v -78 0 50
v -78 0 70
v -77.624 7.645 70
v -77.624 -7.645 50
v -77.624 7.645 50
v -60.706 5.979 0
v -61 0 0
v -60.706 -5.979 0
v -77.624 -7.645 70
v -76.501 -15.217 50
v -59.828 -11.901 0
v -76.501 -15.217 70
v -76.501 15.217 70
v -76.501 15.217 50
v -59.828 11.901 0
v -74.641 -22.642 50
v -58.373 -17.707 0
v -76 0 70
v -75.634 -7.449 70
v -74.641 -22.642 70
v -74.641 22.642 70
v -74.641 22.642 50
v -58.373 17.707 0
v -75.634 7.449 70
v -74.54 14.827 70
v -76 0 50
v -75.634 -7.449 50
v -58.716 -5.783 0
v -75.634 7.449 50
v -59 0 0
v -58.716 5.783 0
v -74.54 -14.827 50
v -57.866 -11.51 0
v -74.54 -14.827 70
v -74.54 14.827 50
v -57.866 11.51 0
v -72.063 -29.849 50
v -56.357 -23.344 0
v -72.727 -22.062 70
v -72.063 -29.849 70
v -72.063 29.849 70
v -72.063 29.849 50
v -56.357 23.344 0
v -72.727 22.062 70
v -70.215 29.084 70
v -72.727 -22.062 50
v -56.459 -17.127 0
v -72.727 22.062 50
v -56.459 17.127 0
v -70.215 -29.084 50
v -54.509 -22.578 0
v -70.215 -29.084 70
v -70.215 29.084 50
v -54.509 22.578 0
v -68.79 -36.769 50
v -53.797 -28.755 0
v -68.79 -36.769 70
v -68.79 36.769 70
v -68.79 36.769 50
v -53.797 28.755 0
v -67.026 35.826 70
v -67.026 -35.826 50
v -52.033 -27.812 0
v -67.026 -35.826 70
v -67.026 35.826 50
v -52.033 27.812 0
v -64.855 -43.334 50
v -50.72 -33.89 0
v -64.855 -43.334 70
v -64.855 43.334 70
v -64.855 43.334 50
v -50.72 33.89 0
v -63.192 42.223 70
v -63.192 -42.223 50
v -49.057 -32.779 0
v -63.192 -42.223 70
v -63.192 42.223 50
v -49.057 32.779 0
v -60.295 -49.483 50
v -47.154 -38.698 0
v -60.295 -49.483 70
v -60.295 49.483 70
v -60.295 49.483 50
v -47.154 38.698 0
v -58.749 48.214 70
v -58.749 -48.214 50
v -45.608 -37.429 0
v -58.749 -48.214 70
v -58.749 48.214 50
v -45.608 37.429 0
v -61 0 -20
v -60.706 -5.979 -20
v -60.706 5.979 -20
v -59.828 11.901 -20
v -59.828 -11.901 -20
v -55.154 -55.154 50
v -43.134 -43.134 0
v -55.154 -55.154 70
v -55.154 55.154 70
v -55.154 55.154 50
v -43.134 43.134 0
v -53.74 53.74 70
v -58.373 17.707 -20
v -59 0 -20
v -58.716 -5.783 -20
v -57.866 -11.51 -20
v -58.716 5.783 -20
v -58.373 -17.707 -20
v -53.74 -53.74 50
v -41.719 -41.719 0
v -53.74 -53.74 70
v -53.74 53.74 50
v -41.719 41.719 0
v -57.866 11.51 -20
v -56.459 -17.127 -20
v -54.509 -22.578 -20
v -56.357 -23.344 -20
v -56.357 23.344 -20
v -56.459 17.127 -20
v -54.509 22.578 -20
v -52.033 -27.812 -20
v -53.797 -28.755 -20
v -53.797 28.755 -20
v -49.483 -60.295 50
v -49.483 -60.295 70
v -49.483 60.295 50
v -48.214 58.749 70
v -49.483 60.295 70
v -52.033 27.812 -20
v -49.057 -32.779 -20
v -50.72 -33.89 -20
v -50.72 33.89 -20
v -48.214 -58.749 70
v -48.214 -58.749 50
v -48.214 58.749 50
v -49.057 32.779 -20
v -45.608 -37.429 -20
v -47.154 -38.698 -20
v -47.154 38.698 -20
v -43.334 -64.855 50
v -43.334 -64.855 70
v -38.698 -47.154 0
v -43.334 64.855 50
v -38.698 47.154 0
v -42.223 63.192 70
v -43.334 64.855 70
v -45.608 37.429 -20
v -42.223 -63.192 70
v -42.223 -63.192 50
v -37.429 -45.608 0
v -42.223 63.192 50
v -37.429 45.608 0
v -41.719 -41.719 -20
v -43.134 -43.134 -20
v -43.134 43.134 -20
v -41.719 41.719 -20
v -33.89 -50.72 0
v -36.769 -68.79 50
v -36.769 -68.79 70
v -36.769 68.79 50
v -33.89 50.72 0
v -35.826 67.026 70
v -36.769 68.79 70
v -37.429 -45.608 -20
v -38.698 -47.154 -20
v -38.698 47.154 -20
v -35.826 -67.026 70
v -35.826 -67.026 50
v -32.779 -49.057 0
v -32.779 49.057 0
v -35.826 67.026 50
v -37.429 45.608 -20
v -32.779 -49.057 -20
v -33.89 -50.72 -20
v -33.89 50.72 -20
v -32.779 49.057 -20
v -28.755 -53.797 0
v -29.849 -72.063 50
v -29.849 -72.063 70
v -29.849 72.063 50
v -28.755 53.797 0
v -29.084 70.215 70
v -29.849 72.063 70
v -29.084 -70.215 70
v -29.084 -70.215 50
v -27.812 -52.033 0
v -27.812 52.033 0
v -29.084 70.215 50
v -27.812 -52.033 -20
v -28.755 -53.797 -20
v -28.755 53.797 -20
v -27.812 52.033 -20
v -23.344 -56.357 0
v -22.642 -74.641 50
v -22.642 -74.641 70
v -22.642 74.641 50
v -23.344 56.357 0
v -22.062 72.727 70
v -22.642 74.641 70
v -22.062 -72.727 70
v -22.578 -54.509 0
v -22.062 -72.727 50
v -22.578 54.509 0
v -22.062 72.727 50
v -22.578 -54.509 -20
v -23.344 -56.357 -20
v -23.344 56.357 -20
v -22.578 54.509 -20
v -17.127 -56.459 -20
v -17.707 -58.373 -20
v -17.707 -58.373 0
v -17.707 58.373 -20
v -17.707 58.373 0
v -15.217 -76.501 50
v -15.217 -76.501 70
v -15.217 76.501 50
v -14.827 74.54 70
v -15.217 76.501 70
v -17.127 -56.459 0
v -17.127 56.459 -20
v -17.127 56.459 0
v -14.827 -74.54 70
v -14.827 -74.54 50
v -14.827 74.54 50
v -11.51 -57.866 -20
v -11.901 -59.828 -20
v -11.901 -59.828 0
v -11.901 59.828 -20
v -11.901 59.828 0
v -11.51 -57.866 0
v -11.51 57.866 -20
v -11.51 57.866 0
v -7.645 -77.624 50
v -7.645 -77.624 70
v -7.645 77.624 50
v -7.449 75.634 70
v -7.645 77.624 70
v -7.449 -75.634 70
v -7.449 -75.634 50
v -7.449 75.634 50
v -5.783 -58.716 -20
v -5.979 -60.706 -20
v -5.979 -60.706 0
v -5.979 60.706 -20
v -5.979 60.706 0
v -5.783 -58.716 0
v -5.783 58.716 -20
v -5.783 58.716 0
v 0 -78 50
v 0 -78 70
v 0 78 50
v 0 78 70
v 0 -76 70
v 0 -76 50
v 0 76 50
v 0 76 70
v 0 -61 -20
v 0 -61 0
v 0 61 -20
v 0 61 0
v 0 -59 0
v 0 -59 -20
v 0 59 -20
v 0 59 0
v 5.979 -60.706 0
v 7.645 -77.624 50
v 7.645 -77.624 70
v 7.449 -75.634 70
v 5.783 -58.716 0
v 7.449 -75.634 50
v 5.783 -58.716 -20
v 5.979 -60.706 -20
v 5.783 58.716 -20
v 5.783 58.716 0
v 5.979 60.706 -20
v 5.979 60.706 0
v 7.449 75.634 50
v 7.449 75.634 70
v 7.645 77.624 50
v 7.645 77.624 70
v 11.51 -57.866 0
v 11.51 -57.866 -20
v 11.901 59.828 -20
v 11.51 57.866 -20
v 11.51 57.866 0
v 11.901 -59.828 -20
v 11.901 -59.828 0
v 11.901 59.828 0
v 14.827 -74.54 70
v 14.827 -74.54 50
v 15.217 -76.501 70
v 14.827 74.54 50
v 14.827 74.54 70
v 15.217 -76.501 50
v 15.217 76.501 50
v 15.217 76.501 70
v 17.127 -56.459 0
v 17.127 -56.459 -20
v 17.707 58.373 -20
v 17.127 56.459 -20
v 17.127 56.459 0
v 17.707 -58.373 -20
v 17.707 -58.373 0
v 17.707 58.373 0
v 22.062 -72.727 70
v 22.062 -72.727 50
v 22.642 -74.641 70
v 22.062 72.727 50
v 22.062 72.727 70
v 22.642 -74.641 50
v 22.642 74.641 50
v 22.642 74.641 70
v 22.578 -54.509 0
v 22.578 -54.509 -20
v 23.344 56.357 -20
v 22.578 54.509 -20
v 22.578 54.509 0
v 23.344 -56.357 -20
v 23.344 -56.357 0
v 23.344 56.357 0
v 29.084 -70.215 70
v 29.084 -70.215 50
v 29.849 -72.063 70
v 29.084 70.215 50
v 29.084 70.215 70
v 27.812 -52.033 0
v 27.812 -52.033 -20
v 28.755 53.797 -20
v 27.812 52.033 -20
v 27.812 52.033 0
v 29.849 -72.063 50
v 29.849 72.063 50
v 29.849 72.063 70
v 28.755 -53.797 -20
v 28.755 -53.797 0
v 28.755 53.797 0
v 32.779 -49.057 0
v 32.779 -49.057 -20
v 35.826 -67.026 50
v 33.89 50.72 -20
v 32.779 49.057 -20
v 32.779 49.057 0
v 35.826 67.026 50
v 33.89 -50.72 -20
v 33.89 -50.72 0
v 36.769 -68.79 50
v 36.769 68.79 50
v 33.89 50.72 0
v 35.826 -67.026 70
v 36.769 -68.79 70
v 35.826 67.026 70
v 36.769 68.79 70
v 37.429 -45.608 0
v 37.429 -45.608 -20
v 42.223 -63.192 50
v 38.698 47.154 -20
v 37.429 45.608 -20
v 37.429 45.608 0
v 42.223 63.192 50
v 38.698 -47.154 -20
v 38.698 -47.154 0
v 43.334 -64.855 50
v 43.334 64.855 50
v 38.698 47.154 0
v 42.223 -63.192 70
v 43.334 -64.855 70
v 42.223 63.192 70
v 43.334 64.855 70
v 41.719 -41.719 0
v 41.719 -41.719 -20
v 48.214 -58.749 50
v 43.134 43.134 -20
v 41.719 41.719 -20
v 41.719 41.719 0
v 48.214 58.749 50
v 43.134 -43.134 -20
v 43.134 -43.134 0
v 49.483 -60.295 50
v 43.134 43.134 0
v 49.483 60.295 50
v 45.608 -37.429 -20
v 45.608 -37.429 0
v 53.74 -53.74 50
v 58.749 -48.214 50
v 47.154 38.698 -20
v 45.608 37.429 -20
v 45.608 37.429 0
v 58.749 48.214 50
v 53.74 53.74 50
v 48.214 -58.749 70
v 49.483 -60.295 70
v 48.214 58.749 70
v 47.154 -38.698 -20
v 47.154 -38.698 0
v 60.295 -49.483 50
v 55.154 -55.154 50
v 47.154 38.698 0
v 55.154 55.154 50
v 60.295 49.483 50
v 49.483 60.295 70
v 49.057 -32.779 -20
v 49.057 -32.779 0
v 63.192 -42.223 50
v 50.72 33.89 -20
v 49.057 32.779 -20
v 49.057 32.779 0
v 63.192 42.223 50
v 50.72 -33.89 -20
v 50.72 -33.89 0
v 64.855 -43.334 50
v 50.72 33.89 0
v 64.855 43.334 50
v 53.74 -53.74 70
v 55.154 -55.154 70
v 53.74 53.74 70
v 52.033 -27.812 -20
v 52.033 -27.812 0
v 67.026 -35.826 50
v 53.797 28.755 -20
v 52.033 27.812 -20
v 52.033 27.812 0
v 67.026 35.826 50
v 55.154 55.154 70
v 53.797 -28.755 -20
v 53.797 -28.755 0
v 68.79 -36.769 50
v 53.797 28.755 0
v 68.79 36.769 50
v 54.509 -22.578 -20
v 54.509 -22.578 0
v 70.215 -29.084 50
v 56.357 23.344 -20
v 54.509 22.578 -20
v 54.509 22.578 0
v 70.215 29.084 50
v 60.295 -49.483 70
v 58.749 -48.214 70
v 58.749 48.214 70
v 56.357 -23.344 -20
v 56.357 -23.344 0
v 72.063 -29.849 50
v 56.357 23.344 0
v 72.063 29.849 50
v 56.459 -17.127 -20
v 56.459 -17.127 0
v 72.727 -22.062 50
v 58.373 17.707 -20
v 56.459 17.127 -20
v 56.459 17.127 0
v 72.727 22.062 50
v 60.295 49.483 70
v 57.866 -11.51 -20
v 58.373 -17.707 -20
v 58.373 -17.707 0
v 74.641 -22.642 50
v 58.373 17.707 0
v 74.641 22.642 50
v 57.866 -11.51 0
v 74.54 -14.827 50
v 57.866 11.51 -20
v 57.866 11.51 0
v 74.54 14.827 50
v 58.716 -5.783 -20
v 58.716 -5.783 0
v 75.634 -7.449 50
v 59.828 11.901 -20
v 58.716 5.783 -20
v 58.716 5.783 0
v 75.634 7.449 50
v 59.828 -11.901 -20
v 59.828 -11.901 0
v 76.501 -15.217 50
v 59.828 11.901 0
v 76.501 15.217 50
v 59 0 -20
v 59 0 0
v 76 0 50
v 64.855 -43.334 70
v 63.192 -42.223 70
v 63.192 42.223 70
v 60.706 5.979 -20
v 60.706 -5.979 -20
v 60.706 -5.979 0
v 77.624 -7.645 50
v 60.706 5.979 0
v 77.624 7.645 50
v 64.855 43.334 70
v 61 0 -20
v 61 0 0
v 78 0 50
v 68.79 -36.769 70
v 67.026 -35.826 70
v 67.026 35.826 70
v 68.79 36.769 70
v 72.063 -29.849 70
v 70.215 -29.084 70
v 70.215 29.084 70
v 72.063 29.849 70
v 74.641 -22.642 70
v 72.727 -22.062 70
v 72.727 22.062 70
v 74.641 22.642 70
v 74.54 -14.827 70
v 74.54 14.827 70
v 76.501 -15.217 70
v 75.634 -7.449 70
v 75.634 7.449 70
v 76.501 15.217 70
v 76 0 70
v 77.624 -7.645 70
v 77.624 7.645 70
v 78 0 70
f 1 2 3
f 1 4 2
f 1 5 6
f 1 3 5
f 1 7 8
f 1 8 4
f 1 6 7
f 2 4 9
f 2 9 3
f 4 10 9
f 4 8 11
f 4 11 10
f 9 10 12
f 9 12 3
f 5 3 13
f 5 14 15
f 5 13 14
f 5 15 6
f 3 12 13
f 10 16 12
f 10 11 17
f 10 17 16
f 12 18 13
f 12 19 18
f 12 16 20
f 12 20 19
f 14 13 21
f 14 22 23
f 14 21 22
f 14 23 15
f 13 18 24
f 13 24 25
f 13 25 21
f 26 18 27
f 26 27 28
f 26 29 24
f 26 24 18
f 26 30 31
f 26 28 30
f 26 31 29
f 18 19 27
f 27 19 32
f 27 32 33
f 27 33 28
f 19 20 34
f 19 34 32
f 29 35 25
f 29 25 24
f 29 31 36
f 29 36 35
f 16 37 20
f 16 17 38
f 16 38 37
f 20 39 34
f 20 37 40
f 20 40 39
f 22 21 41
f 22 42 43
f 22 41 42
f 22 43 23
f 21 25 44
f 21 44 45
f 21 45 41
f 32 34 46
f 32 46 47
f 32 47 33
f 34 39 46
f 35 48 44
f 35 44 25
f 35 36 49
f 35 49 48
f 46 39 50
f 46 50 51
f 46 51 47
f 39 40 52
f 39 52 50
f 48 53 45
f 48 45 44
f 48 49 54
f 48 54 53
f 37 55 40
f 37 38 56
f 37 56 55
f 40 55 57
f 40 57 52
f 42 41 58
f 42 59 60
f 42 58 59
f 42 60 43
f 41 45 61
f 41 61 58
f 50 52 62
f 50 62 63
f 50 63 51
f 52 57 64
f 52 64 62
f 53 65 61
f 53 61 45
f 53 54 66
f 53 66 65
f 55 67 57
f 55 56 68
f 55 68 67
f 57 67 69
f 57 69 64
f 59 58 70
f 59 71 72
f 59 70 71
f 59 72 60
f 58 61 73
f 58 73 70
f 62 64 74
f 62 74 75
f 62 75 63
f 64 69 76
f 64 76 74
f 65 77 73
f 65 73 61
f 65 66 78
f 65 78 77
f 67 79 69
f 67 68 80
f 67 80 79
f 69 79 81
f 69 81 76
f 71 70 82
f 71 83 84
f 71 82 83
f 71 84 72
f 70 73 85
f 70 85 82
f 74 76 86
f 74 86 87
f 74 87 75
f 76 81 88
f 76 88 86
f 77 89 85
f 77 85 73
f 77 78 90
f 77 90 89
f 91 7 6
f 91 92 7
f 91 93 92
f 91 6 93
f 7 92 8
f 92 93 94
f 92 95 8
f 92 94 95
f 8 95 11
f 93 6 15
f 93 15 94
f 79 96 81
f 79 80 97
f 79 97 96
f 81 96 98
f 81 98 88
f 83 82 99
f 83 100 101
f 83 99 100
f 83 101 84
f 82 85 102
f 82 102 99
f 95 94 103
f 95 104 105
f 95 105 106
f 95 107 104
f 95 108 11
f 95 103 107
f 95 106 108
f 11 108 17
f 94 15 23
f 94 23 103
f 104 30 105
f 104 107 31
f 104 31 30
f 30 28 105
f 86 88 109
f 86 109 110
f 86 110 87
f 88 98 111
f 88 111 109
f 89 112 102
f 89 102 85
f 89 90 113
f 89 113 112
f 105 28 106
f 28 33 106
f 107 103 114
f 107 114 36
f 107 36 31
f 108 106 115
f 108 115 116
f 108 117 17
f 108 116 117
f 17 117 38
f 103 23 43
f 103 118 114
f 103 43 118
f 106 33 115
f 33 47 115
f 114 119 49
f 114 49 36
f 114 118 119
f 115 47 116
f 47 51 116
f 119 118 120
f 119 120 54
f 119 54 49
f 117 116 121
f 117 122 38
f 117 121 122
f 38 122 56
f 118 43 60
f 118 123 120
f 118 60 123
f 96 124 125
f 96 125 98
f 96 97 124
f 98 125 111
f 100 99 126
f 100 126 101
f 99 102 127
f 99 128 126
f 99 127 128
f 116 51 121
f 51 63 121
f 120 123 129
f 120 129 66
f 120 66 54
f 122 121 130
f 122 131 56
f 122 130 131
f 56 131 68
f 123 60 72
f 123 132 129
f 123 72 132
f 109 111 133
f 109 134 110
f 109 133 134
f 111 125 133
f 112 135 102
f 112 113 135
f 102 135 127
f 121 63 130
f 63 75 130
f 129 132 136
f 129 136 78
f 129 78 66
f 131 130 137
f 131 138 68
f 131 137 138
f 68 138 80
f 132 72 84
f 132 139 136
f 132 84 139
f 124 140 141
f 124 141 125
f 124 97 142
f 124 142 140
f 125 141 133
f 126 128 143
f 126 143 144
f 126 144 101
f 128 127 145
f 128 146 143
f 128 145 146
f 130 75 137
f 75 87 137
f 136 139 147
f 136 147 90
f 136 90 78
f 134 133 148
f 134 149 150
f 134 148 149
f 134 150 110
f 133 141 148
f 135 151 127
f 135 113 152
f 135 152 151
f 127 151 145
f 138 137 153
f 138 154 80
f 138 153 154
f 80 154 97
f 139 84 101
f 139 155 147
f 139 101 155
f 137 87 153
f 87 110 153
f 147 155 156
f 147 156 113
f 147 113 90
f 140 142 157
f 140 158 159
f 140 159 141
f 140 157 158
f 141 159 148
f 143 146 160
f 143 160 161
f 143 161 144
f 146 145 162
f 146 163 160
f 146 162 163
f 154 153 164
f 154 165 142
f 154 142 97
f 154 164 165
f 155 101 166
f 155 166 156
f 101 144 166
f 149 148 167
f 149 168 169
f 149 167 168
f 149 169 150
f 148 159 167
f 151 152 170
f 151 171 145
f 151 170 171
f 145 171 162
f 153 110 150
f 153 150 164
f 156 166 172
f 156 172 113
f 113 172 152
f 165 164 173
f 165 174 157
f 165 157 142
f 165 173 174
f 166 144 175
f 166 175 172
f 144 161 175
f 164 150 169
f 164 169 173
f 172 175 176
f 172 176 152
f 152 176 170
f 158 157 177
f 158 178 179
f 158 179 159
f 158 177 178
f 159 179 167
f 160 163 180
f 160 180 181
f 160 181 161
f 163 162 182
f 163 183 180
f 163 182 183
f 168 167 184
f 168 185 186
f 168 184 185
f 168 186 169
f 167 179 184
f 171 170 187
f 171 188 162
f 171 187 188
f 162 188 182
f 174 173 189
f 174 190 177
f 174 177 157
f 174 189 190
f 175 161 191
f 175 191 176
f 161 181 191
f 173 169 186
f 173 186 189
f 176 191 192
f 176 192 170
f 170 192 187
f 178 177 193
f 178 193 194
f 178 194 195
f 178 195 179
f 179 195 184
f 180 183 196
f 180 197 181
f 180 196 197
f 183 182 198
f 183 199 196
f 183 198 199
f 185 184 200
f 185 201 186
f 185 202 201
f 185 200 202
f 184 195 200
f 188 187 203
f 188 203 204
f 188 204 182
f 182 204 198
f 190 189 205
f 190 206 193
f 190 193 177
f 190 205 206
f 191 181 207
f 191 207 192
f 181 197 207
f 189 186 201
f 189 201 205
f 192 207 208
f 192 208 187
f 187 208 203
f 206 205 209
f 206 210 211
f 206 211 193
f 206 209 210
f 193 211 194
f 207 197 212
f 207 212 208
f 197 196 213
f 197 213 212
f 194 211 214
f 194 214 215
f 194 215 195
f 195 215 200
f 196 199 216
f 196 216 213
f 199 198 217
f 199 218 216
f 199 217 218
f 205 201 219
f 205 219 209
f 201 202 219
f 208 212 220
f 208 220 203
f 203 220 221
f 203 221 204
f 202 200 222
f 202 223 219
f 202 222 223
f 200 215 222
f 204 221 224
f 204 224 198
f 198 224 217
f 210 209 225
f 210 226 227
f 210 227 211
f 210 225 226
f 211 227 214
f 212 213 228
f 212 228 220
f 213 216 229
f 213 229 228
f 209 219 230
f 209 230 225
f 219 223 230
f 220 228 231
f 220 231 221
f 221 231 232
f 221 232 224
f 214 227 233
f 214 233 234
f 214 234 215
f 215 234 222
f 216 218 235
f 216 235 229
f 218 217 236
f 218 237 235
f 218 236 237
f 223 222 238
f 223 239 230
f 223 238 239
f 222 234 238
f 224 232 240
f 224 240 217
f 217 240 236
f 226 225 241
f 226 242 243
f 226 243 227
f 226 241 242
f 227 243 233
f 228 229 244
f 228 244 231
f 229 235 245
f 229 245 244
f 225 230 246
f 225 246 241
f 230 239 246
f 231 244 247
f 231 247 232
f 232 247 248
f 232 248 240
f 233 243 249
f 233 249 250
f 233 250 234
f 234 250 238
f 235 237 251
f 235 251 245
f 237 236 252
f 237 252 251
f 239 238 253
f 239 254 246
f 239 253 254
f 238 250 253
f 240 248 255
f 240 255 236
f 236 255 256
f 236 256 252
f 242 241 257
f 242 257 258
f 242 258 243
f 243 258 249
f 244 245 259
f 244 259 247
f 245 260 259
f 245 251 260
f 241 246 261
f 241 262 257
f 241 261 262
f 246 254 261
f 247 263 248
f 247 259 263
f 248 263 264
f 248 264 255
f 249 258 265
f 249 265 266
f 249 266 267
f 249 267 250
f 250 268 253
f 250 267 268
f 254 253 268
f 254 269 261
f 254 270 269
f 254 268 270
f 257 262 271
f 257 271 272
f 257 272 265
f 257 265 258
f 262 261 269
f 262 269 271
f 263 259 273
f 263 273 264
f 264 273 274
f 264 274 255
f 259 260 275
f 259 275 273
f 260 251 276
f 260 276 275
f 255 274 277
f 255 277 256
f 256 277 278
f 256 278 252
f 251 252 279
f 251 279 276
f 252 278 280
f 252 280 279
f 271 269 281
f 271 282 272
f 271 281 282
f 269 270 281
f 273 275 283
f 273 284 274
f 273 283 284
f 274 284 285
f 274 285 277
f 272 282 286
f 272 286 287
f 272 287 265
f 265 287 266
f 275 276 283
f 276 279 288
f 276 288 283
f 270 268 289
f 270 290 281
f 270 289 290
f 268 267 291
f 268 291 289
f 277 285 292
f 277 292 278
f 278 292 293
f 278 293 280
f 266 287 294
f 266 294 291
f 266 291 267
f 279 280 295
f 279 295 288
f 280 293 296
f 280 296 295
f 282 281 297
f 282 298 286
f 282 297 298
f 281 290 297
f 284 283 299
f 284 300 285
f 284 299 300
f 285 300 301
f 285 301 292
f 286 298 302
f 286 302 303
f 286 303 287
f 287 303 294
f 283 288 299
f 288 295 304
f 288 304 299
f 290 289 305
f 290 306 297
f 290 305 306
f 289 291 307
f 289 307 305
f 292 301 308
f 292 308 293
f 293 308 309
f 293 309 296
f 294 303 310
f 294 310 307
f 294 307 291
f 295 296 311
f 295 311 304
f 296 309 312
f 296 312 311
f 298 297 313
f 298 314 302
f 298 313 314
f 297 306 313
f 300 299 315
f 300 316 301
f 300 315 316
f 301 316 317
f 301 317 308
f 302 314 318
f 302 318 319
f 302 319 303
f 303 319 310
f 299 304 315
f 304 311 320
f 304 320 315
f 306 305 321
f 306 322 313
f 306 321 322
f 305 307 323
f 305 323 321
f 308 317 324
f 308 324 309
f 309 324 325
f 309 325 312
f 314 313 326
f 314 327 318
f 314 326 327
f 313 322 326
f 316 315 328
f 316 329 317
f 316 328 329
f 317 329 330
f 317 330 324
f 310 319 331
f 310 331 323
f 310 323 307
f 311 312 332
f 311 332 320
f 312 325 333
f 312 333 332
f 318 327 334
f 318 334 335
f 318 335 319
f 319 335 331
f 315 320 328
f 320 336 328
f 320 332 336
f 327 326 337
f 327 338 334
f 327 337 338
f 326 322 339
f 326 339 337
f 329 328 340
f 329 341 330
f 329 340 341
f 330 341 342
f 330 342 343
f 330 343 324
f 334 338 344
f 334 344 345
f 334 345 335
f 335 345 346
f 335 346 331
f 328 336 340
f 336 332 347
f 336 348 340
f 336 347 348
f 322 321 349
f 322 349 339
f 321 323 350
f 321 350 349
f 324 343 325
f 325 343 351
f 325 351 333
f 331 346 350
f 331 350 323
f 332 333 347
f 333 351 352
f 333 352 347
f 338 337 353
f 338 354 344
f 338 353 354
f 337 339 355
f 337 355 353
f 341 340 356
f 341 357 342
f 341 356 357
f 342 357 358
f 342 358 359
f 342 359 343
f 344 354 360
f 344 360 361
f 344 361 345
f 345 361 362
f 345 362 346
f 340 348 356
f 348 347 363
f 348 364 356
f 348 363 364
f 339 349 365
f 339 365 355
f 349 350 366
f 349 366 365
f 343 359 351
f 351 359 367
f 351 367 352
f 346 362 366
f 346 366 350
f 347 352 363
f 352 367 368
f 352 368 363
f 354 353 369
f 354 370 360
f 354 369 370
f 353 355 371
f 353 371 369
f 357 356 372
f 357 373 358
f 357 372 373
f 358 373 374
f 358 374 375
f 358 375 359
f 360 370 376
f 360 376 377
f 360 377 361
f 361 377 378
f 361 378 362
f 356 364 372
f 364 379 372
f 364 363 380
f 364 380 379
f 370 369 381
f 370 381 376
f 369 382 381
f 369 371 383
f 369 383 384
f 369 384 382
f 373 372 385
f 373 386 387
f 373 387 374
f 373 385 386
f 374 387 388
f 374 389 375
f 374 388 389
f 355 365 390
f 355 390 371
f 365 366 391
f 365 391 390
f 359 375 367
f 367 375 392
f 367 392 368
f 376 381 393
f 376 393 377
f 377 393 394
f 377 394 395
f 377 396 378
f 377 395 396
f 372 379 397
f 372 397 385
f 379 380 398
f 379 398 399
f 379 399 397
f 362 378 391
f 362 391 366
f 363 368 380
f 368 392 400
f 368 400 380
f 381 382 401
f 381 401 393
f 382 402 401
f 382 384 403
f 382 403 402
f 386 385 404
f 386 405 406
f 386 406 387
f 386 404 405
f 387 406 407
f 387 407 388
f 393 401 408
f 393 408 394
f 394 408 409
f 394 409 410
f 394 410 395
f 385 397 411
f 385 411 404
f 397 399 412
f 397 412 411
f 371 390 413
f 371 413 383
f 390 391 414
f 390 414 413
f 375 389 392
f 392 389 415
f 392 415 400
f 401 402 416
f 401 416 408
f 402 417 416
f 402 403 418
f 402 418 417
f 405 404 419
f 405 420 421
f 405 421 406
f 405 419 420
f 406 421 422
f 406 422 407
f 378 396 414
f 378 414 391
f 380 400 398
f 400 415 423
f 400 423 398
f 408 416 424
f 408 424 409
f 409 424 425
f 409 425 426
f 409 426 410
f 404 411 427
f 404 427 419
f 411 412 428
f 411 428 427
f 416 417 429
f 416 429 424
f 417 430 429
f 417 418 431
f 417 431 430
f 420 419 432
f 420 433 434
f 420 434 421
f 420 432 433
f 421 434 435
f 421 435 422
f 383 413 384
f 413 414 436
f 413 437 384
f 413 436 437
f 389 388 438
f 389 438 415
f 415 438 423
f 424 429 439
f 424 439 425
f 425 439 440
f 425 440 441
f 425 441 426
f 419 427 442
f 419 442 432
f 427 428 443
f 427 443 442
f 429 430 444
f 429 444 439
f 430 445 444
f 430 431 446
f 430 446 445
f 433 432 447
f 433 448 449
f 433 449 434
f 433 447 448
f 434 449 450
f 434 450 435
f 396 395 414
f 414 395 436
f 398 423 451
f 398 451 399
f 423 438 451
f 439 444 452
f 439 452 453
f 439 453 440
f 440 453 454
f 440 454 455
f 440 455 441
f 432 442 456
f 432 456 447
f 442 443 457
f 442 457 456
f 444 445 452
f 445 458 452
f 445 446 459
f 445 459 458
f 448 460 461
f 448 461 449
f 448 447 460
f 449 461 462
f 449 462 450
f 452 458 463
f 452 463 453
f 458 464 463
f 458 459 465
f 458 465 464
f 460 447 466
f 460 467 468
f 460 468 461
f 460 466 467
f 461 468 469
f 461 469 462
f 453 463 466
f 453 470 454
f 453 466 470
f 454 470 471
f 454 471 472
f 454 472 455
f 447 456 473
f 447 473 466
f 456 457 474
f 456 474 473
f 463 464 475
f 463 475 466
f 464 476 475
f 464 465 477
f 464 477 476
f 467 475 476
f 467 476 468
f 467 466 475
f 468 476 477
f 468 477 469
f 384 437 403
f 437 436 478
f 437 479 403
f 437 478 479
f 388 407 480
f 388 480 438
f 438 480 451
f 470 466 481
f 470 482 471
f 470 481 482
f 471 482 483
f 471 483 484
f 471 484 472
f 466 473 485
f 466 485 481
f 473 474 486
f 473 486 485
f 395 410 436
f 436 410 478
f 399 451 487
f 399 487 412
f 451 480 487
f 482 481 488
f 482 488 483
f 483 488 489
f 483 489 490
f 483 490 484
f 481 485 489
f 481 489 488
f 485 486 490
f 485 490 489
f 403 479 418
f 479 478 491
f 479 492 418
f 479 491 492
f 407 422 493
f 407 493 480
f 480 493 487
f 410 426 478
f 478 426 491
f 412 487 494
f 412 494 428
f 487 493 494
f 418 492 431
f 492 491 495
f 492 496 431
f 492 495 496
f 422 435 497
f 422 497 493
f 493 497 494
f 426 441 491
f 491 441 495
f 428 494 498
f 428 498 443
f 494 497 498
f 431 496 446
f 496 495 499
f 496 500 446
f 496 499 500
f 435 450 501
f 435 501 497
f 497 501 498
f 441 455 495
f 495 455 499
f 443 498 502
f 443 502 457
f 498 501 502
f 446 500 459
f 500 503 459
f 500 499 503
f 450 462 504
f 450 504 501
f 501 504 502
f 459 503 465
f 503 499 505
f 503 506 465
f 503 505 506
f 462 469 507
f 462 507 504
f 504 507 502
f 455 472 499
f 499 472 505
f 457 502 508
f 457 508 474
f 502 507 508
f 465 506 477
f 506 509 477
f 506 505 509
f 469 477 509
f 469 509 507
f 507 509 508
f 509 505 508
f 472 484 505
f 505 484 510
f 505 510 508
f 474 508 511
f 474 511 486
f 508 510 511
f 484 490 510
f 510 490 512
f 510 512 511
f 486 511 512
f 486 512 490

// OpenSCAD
adapt_from=122;
adapt_to=156;
adapter_height=50;
edge_height=20;
thickness=2;

/* [Hidden] */
$fn = 64;

module duct(h, r1, r2) {
    difference() {
        // Outer
        cylinder(h=h, r1=r1, r2=r2);
        // Inner
        cylinder(h=h, r1=r1-thickness, r2=r2-thickness);
    }
}

module adapter() {
    r1 = adapt_from/2;
    r2 = adapt_to/2;
    union() {
        translate([0, 0, adapter_height]) duct(edge_height, r2, r2);
        duct(adapter_height, r1, r2);
        translate([0, 0, -20]) duct(edge_height, r1, r1);
    }
}

color("white")
adapter();
